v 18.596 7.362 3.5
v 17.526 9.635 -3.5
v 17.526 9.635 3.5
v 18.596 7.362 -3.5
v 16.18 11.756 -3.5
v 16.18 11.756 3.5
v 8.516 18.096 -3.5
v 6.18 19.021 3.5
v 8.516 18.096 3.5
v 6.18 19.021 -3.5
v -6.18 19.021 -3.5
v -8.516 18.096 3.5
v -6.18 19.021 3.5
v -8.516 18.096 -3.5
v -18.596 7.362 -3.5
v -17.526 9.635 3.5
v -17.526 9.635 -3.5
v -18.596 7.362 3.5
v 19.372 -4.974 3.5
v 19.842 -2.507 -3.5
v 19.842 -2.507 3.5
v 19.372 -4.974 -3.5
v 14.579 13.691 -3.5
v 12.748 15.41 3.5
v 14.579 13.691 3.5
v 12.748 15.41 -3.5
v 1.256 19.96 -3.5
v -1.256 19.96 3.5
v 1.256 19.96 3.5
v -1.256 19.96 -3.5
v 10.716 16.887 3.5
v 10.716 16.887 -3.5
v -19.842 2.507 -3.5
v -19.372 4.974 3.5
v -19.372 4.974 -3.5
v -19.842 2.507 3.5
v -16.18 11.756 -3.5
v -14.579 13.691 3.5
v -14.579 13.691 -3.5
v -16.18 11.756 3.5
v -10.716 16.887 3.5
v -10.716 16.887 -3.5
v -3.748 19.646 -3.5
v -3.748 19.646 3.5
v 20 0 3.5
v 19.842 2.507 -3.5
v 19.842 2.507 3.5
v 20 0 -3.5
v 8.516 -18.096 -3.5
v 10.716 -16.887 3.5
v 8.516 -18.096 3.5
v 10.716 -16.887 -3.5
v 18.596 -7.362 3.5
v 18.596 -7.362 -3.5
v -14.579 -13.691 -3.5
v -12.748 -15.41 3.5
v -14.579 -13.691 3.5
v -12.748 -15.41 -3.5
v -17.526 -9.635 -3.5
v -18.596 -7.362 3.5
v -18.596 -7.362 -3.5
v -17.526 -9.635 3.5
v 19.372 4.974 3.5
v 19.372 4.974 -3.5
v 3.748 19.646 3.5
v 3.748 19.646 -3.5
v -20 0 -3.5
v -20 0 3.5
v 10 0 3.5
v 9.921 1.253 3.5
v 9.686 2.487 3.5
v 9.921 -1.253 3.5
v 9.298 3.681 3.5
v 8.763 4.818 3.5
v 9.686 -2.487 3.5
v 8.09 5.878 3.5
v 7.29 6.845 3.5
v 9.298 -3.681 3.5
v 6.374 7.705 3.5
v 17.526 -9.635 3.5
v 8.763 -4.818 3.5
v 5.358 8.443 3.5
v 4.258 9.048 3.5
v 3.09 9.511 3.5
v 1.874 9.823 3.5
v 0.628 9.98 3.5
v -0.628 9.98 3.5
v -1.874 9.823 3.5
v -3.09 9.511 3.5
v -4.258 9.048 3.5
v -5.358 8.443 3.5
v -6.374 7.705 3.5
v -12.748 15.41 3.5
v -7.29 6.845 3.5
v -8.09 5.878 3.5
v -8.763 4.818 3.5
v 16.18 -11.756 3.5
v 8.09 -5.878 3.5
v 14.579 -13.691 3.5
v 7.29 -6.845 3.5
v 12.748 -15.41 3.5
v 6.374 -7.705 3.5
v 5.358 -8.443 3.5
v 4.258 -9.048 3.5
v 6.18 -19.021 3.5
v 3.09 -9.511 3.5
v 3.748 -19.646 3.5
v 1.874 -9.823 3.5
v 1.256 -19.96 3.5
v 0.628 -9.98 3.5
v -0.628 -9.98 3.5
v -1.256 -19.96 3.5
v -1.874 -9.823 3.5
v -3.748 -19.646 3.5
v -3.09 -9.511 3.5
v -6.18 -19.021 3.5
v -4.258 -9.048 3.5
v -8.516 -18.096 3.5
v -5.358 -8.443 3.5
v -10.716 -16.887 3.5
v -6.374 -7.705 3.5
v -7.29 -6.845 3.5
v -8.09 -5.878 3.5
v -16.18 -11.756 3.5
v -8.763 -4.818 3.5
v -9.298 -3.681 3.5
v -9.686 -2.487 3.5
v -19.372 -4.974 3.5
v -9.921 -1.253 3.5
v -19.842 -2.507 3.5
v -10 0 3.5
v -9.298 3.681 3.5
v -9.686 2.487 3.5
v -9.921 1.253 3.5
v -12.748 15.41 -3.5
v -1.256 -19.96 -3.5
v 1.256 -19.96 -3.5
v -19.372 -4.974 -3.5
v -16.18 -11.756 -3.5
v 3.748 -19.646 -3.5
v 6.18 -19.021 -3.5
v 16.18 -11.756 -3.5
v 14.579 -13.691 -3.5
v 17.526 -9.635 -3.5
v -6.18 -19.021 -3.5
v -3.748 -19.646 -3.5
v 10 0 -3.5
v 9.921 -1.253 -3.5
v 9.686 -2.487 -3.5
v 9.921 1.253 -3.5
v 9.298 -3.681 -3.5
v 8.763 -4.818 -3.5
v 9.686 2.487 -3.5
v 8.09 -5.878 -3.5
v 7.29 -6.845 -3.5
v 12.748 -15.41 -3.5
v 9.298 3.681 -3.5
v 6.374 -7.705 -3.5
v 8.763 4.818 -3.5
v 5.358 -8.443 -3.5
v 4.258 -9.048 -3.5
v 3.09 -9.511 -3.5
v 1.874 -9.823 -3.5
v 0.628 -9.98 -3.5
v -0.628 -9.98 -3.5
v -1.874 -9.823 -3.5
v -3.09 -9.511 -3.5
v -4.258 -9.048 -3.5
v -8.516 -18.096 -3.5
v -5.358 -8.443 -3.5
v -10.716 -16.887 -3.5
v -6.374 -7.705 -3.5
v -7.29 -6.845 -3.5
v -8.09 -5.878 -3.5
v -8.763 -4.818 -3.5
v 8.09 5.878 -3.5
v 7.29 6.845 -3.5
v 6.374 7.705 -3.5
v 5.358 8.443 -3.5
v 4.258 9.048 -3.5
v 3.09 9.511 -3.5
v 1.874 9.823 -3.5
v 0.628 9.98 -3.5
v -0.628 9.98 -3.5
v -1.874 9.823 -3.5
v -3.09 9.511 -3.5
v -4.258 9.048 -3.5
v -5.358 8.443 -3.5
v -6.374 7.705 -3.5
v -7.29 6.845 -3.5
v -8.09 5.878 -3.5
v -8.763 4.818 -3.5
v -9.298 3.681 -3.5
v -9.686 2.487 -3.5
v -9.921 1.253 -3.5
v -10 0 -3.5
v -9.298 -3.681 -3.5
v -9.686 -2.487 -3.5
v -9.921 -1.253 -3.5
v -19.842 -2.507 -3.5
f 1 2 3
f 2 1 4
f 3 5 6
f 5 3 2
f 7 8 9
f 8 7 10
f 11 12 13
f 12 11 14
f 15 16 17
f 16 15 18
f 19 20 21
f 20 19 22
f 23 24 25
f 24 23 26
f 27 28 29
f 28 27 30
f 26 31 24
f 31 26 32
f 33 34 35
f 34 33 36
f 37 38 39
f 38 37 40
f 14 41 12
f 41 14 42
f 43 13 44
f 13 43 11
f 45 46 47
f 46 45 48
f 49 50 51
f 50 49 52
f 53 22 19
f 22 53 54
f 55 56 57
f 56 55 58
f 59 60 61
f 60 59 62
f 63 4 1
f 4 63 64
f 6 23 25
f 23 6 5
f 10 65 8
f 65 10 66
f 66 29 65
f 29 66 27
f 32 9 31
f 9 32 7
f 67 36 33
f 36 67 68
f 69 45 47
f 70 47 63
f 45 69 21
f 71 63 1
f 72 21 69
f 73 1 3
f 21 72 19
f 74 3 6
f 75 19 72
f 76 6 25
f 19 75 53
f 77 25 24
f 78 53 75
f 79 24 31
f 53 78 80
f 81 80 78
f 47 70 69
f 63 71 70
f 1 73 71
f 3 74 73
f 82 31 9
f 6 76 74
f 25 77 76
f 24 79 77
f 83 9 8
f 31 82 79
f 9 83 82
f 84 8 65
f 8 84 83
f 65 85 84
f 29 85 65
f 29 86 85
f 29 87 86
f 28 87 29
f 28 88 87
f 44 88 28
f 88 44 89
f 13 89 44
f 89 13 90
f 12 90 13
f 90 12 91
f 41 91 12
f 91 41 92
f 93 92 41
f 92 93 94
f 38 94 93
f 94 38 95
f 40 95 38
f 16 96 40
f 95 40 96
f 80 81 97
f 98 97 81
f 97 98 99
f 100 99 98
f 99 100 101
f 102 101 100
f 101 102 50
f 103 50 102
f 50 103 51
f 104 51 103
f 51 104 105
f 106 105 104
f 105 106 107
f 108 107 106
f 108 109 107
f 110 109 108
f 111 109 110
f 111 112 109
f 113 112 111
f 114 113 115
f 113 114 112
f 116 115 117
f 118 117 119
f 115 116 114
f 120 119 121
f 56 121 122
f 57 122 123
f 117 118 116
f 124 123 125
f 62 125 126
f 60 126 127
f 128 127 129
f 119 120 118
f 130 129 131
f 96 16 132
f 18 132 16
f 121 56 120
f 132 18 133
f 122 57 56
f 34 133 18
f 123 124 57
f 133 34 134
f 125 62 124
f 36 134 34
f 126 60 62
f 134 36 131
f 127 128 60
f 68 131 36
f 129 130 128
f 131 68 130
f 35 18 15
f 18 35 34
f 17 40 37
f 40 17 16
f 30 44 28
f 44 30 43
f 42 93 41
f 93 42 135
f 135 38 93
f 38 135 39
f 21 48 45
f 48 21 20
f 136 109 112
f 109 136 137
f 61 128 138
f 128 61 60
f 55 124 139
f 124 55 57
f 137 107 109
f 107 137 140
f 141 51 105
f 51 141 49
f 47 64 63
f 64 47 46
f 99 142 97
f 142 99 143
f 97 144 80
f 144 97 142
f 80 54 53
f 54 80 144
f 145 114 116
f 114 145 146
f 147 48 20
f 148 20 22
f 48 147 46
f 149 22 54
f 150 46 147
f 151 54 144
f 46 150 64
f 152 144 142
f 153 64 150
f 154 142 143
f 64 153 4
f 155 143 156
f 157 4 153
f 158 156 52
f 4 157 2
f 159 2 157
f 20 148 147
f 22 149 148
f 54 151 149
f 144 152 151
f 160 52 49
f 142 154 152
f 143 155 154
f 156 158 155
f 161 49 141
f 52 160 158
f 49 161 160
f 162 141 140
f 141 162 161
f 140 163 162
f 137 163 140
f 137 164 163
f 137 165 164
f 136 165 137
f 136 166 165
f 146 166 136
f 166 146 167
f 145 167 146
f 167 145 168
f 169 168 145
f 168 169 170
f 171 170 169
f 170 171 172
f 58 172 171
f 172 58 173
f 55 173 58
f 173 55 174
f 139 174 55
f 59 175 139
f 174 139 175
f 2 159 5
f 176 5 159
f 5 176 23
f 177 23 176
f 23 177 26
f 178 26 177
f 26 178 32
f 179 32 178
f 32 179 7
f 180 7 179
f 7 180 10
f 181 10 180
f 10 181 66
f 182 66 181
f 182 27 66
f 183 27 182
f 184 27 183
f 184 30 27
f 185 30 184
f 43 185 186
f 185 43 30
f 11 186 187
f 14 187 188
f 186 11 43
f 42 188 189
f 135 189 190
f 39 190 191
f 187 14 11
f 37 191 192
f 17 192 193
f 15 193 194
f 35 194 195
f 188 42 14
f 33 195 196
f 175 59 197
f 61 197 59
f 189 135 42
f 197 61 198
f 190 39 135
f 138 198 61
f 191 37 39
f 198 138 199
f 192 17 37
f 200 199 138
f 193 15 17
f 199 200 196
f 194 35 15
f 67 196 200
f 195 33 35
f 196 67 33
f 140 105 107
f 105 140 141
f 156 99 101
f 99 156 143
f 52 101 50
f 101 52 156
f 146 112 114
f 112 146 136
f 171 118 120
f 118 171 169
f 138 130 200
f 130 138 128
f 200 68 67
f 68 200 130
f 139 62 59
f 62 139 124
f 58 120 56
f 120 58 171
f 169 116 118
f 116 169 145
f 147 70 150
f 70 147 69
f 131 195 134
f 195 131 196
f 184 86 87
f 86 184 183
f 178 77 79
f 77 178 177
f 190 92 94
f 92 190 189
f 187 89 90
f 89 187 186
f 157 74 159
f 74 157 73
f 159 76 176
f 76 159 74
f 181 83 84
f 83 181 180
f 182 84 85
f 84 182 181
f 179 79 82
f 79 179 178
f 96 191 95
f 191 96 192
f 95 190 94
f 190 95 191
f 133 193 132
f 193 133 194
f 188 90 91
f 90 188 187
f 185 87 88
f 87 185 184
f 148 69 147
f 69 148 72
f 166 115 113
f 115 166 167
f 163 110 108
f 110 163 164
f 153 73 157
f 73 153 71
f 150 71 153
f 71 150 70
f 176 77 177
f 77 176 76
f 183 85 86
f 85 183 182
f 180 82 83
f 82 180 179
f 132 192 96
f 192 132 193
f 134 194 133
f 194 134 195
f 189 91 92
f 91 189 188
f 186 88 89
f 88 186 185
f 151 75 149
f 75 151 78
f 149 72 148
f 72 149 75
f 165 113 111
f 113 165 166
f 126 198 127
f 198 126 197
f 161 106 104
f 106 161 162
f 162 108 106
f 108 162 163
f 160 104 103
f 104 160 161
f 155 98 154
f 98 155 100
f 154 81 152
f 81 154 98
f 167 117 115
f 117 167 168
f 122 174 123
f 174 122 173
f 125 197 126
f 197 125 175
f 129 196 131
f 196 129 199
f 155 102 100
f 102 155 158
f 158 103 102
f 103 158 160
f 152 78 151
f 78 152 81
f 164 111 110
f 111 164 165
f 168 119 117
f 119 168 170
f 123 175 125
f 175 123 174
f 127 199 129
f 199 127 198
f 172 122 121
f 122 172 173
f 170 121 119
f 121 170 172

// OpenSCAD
$fn = 50;


difference() {
	union() {
		translate(v = [0, 0, -3.5000000000]) {
			cylinder(h = 7, r = 20.0000000000);
		}
	}
	union() {
		translate(v = [0, 0, -100.0000000000]) {
			cylinder(h = 200, r = 10);
		}
	}
}
